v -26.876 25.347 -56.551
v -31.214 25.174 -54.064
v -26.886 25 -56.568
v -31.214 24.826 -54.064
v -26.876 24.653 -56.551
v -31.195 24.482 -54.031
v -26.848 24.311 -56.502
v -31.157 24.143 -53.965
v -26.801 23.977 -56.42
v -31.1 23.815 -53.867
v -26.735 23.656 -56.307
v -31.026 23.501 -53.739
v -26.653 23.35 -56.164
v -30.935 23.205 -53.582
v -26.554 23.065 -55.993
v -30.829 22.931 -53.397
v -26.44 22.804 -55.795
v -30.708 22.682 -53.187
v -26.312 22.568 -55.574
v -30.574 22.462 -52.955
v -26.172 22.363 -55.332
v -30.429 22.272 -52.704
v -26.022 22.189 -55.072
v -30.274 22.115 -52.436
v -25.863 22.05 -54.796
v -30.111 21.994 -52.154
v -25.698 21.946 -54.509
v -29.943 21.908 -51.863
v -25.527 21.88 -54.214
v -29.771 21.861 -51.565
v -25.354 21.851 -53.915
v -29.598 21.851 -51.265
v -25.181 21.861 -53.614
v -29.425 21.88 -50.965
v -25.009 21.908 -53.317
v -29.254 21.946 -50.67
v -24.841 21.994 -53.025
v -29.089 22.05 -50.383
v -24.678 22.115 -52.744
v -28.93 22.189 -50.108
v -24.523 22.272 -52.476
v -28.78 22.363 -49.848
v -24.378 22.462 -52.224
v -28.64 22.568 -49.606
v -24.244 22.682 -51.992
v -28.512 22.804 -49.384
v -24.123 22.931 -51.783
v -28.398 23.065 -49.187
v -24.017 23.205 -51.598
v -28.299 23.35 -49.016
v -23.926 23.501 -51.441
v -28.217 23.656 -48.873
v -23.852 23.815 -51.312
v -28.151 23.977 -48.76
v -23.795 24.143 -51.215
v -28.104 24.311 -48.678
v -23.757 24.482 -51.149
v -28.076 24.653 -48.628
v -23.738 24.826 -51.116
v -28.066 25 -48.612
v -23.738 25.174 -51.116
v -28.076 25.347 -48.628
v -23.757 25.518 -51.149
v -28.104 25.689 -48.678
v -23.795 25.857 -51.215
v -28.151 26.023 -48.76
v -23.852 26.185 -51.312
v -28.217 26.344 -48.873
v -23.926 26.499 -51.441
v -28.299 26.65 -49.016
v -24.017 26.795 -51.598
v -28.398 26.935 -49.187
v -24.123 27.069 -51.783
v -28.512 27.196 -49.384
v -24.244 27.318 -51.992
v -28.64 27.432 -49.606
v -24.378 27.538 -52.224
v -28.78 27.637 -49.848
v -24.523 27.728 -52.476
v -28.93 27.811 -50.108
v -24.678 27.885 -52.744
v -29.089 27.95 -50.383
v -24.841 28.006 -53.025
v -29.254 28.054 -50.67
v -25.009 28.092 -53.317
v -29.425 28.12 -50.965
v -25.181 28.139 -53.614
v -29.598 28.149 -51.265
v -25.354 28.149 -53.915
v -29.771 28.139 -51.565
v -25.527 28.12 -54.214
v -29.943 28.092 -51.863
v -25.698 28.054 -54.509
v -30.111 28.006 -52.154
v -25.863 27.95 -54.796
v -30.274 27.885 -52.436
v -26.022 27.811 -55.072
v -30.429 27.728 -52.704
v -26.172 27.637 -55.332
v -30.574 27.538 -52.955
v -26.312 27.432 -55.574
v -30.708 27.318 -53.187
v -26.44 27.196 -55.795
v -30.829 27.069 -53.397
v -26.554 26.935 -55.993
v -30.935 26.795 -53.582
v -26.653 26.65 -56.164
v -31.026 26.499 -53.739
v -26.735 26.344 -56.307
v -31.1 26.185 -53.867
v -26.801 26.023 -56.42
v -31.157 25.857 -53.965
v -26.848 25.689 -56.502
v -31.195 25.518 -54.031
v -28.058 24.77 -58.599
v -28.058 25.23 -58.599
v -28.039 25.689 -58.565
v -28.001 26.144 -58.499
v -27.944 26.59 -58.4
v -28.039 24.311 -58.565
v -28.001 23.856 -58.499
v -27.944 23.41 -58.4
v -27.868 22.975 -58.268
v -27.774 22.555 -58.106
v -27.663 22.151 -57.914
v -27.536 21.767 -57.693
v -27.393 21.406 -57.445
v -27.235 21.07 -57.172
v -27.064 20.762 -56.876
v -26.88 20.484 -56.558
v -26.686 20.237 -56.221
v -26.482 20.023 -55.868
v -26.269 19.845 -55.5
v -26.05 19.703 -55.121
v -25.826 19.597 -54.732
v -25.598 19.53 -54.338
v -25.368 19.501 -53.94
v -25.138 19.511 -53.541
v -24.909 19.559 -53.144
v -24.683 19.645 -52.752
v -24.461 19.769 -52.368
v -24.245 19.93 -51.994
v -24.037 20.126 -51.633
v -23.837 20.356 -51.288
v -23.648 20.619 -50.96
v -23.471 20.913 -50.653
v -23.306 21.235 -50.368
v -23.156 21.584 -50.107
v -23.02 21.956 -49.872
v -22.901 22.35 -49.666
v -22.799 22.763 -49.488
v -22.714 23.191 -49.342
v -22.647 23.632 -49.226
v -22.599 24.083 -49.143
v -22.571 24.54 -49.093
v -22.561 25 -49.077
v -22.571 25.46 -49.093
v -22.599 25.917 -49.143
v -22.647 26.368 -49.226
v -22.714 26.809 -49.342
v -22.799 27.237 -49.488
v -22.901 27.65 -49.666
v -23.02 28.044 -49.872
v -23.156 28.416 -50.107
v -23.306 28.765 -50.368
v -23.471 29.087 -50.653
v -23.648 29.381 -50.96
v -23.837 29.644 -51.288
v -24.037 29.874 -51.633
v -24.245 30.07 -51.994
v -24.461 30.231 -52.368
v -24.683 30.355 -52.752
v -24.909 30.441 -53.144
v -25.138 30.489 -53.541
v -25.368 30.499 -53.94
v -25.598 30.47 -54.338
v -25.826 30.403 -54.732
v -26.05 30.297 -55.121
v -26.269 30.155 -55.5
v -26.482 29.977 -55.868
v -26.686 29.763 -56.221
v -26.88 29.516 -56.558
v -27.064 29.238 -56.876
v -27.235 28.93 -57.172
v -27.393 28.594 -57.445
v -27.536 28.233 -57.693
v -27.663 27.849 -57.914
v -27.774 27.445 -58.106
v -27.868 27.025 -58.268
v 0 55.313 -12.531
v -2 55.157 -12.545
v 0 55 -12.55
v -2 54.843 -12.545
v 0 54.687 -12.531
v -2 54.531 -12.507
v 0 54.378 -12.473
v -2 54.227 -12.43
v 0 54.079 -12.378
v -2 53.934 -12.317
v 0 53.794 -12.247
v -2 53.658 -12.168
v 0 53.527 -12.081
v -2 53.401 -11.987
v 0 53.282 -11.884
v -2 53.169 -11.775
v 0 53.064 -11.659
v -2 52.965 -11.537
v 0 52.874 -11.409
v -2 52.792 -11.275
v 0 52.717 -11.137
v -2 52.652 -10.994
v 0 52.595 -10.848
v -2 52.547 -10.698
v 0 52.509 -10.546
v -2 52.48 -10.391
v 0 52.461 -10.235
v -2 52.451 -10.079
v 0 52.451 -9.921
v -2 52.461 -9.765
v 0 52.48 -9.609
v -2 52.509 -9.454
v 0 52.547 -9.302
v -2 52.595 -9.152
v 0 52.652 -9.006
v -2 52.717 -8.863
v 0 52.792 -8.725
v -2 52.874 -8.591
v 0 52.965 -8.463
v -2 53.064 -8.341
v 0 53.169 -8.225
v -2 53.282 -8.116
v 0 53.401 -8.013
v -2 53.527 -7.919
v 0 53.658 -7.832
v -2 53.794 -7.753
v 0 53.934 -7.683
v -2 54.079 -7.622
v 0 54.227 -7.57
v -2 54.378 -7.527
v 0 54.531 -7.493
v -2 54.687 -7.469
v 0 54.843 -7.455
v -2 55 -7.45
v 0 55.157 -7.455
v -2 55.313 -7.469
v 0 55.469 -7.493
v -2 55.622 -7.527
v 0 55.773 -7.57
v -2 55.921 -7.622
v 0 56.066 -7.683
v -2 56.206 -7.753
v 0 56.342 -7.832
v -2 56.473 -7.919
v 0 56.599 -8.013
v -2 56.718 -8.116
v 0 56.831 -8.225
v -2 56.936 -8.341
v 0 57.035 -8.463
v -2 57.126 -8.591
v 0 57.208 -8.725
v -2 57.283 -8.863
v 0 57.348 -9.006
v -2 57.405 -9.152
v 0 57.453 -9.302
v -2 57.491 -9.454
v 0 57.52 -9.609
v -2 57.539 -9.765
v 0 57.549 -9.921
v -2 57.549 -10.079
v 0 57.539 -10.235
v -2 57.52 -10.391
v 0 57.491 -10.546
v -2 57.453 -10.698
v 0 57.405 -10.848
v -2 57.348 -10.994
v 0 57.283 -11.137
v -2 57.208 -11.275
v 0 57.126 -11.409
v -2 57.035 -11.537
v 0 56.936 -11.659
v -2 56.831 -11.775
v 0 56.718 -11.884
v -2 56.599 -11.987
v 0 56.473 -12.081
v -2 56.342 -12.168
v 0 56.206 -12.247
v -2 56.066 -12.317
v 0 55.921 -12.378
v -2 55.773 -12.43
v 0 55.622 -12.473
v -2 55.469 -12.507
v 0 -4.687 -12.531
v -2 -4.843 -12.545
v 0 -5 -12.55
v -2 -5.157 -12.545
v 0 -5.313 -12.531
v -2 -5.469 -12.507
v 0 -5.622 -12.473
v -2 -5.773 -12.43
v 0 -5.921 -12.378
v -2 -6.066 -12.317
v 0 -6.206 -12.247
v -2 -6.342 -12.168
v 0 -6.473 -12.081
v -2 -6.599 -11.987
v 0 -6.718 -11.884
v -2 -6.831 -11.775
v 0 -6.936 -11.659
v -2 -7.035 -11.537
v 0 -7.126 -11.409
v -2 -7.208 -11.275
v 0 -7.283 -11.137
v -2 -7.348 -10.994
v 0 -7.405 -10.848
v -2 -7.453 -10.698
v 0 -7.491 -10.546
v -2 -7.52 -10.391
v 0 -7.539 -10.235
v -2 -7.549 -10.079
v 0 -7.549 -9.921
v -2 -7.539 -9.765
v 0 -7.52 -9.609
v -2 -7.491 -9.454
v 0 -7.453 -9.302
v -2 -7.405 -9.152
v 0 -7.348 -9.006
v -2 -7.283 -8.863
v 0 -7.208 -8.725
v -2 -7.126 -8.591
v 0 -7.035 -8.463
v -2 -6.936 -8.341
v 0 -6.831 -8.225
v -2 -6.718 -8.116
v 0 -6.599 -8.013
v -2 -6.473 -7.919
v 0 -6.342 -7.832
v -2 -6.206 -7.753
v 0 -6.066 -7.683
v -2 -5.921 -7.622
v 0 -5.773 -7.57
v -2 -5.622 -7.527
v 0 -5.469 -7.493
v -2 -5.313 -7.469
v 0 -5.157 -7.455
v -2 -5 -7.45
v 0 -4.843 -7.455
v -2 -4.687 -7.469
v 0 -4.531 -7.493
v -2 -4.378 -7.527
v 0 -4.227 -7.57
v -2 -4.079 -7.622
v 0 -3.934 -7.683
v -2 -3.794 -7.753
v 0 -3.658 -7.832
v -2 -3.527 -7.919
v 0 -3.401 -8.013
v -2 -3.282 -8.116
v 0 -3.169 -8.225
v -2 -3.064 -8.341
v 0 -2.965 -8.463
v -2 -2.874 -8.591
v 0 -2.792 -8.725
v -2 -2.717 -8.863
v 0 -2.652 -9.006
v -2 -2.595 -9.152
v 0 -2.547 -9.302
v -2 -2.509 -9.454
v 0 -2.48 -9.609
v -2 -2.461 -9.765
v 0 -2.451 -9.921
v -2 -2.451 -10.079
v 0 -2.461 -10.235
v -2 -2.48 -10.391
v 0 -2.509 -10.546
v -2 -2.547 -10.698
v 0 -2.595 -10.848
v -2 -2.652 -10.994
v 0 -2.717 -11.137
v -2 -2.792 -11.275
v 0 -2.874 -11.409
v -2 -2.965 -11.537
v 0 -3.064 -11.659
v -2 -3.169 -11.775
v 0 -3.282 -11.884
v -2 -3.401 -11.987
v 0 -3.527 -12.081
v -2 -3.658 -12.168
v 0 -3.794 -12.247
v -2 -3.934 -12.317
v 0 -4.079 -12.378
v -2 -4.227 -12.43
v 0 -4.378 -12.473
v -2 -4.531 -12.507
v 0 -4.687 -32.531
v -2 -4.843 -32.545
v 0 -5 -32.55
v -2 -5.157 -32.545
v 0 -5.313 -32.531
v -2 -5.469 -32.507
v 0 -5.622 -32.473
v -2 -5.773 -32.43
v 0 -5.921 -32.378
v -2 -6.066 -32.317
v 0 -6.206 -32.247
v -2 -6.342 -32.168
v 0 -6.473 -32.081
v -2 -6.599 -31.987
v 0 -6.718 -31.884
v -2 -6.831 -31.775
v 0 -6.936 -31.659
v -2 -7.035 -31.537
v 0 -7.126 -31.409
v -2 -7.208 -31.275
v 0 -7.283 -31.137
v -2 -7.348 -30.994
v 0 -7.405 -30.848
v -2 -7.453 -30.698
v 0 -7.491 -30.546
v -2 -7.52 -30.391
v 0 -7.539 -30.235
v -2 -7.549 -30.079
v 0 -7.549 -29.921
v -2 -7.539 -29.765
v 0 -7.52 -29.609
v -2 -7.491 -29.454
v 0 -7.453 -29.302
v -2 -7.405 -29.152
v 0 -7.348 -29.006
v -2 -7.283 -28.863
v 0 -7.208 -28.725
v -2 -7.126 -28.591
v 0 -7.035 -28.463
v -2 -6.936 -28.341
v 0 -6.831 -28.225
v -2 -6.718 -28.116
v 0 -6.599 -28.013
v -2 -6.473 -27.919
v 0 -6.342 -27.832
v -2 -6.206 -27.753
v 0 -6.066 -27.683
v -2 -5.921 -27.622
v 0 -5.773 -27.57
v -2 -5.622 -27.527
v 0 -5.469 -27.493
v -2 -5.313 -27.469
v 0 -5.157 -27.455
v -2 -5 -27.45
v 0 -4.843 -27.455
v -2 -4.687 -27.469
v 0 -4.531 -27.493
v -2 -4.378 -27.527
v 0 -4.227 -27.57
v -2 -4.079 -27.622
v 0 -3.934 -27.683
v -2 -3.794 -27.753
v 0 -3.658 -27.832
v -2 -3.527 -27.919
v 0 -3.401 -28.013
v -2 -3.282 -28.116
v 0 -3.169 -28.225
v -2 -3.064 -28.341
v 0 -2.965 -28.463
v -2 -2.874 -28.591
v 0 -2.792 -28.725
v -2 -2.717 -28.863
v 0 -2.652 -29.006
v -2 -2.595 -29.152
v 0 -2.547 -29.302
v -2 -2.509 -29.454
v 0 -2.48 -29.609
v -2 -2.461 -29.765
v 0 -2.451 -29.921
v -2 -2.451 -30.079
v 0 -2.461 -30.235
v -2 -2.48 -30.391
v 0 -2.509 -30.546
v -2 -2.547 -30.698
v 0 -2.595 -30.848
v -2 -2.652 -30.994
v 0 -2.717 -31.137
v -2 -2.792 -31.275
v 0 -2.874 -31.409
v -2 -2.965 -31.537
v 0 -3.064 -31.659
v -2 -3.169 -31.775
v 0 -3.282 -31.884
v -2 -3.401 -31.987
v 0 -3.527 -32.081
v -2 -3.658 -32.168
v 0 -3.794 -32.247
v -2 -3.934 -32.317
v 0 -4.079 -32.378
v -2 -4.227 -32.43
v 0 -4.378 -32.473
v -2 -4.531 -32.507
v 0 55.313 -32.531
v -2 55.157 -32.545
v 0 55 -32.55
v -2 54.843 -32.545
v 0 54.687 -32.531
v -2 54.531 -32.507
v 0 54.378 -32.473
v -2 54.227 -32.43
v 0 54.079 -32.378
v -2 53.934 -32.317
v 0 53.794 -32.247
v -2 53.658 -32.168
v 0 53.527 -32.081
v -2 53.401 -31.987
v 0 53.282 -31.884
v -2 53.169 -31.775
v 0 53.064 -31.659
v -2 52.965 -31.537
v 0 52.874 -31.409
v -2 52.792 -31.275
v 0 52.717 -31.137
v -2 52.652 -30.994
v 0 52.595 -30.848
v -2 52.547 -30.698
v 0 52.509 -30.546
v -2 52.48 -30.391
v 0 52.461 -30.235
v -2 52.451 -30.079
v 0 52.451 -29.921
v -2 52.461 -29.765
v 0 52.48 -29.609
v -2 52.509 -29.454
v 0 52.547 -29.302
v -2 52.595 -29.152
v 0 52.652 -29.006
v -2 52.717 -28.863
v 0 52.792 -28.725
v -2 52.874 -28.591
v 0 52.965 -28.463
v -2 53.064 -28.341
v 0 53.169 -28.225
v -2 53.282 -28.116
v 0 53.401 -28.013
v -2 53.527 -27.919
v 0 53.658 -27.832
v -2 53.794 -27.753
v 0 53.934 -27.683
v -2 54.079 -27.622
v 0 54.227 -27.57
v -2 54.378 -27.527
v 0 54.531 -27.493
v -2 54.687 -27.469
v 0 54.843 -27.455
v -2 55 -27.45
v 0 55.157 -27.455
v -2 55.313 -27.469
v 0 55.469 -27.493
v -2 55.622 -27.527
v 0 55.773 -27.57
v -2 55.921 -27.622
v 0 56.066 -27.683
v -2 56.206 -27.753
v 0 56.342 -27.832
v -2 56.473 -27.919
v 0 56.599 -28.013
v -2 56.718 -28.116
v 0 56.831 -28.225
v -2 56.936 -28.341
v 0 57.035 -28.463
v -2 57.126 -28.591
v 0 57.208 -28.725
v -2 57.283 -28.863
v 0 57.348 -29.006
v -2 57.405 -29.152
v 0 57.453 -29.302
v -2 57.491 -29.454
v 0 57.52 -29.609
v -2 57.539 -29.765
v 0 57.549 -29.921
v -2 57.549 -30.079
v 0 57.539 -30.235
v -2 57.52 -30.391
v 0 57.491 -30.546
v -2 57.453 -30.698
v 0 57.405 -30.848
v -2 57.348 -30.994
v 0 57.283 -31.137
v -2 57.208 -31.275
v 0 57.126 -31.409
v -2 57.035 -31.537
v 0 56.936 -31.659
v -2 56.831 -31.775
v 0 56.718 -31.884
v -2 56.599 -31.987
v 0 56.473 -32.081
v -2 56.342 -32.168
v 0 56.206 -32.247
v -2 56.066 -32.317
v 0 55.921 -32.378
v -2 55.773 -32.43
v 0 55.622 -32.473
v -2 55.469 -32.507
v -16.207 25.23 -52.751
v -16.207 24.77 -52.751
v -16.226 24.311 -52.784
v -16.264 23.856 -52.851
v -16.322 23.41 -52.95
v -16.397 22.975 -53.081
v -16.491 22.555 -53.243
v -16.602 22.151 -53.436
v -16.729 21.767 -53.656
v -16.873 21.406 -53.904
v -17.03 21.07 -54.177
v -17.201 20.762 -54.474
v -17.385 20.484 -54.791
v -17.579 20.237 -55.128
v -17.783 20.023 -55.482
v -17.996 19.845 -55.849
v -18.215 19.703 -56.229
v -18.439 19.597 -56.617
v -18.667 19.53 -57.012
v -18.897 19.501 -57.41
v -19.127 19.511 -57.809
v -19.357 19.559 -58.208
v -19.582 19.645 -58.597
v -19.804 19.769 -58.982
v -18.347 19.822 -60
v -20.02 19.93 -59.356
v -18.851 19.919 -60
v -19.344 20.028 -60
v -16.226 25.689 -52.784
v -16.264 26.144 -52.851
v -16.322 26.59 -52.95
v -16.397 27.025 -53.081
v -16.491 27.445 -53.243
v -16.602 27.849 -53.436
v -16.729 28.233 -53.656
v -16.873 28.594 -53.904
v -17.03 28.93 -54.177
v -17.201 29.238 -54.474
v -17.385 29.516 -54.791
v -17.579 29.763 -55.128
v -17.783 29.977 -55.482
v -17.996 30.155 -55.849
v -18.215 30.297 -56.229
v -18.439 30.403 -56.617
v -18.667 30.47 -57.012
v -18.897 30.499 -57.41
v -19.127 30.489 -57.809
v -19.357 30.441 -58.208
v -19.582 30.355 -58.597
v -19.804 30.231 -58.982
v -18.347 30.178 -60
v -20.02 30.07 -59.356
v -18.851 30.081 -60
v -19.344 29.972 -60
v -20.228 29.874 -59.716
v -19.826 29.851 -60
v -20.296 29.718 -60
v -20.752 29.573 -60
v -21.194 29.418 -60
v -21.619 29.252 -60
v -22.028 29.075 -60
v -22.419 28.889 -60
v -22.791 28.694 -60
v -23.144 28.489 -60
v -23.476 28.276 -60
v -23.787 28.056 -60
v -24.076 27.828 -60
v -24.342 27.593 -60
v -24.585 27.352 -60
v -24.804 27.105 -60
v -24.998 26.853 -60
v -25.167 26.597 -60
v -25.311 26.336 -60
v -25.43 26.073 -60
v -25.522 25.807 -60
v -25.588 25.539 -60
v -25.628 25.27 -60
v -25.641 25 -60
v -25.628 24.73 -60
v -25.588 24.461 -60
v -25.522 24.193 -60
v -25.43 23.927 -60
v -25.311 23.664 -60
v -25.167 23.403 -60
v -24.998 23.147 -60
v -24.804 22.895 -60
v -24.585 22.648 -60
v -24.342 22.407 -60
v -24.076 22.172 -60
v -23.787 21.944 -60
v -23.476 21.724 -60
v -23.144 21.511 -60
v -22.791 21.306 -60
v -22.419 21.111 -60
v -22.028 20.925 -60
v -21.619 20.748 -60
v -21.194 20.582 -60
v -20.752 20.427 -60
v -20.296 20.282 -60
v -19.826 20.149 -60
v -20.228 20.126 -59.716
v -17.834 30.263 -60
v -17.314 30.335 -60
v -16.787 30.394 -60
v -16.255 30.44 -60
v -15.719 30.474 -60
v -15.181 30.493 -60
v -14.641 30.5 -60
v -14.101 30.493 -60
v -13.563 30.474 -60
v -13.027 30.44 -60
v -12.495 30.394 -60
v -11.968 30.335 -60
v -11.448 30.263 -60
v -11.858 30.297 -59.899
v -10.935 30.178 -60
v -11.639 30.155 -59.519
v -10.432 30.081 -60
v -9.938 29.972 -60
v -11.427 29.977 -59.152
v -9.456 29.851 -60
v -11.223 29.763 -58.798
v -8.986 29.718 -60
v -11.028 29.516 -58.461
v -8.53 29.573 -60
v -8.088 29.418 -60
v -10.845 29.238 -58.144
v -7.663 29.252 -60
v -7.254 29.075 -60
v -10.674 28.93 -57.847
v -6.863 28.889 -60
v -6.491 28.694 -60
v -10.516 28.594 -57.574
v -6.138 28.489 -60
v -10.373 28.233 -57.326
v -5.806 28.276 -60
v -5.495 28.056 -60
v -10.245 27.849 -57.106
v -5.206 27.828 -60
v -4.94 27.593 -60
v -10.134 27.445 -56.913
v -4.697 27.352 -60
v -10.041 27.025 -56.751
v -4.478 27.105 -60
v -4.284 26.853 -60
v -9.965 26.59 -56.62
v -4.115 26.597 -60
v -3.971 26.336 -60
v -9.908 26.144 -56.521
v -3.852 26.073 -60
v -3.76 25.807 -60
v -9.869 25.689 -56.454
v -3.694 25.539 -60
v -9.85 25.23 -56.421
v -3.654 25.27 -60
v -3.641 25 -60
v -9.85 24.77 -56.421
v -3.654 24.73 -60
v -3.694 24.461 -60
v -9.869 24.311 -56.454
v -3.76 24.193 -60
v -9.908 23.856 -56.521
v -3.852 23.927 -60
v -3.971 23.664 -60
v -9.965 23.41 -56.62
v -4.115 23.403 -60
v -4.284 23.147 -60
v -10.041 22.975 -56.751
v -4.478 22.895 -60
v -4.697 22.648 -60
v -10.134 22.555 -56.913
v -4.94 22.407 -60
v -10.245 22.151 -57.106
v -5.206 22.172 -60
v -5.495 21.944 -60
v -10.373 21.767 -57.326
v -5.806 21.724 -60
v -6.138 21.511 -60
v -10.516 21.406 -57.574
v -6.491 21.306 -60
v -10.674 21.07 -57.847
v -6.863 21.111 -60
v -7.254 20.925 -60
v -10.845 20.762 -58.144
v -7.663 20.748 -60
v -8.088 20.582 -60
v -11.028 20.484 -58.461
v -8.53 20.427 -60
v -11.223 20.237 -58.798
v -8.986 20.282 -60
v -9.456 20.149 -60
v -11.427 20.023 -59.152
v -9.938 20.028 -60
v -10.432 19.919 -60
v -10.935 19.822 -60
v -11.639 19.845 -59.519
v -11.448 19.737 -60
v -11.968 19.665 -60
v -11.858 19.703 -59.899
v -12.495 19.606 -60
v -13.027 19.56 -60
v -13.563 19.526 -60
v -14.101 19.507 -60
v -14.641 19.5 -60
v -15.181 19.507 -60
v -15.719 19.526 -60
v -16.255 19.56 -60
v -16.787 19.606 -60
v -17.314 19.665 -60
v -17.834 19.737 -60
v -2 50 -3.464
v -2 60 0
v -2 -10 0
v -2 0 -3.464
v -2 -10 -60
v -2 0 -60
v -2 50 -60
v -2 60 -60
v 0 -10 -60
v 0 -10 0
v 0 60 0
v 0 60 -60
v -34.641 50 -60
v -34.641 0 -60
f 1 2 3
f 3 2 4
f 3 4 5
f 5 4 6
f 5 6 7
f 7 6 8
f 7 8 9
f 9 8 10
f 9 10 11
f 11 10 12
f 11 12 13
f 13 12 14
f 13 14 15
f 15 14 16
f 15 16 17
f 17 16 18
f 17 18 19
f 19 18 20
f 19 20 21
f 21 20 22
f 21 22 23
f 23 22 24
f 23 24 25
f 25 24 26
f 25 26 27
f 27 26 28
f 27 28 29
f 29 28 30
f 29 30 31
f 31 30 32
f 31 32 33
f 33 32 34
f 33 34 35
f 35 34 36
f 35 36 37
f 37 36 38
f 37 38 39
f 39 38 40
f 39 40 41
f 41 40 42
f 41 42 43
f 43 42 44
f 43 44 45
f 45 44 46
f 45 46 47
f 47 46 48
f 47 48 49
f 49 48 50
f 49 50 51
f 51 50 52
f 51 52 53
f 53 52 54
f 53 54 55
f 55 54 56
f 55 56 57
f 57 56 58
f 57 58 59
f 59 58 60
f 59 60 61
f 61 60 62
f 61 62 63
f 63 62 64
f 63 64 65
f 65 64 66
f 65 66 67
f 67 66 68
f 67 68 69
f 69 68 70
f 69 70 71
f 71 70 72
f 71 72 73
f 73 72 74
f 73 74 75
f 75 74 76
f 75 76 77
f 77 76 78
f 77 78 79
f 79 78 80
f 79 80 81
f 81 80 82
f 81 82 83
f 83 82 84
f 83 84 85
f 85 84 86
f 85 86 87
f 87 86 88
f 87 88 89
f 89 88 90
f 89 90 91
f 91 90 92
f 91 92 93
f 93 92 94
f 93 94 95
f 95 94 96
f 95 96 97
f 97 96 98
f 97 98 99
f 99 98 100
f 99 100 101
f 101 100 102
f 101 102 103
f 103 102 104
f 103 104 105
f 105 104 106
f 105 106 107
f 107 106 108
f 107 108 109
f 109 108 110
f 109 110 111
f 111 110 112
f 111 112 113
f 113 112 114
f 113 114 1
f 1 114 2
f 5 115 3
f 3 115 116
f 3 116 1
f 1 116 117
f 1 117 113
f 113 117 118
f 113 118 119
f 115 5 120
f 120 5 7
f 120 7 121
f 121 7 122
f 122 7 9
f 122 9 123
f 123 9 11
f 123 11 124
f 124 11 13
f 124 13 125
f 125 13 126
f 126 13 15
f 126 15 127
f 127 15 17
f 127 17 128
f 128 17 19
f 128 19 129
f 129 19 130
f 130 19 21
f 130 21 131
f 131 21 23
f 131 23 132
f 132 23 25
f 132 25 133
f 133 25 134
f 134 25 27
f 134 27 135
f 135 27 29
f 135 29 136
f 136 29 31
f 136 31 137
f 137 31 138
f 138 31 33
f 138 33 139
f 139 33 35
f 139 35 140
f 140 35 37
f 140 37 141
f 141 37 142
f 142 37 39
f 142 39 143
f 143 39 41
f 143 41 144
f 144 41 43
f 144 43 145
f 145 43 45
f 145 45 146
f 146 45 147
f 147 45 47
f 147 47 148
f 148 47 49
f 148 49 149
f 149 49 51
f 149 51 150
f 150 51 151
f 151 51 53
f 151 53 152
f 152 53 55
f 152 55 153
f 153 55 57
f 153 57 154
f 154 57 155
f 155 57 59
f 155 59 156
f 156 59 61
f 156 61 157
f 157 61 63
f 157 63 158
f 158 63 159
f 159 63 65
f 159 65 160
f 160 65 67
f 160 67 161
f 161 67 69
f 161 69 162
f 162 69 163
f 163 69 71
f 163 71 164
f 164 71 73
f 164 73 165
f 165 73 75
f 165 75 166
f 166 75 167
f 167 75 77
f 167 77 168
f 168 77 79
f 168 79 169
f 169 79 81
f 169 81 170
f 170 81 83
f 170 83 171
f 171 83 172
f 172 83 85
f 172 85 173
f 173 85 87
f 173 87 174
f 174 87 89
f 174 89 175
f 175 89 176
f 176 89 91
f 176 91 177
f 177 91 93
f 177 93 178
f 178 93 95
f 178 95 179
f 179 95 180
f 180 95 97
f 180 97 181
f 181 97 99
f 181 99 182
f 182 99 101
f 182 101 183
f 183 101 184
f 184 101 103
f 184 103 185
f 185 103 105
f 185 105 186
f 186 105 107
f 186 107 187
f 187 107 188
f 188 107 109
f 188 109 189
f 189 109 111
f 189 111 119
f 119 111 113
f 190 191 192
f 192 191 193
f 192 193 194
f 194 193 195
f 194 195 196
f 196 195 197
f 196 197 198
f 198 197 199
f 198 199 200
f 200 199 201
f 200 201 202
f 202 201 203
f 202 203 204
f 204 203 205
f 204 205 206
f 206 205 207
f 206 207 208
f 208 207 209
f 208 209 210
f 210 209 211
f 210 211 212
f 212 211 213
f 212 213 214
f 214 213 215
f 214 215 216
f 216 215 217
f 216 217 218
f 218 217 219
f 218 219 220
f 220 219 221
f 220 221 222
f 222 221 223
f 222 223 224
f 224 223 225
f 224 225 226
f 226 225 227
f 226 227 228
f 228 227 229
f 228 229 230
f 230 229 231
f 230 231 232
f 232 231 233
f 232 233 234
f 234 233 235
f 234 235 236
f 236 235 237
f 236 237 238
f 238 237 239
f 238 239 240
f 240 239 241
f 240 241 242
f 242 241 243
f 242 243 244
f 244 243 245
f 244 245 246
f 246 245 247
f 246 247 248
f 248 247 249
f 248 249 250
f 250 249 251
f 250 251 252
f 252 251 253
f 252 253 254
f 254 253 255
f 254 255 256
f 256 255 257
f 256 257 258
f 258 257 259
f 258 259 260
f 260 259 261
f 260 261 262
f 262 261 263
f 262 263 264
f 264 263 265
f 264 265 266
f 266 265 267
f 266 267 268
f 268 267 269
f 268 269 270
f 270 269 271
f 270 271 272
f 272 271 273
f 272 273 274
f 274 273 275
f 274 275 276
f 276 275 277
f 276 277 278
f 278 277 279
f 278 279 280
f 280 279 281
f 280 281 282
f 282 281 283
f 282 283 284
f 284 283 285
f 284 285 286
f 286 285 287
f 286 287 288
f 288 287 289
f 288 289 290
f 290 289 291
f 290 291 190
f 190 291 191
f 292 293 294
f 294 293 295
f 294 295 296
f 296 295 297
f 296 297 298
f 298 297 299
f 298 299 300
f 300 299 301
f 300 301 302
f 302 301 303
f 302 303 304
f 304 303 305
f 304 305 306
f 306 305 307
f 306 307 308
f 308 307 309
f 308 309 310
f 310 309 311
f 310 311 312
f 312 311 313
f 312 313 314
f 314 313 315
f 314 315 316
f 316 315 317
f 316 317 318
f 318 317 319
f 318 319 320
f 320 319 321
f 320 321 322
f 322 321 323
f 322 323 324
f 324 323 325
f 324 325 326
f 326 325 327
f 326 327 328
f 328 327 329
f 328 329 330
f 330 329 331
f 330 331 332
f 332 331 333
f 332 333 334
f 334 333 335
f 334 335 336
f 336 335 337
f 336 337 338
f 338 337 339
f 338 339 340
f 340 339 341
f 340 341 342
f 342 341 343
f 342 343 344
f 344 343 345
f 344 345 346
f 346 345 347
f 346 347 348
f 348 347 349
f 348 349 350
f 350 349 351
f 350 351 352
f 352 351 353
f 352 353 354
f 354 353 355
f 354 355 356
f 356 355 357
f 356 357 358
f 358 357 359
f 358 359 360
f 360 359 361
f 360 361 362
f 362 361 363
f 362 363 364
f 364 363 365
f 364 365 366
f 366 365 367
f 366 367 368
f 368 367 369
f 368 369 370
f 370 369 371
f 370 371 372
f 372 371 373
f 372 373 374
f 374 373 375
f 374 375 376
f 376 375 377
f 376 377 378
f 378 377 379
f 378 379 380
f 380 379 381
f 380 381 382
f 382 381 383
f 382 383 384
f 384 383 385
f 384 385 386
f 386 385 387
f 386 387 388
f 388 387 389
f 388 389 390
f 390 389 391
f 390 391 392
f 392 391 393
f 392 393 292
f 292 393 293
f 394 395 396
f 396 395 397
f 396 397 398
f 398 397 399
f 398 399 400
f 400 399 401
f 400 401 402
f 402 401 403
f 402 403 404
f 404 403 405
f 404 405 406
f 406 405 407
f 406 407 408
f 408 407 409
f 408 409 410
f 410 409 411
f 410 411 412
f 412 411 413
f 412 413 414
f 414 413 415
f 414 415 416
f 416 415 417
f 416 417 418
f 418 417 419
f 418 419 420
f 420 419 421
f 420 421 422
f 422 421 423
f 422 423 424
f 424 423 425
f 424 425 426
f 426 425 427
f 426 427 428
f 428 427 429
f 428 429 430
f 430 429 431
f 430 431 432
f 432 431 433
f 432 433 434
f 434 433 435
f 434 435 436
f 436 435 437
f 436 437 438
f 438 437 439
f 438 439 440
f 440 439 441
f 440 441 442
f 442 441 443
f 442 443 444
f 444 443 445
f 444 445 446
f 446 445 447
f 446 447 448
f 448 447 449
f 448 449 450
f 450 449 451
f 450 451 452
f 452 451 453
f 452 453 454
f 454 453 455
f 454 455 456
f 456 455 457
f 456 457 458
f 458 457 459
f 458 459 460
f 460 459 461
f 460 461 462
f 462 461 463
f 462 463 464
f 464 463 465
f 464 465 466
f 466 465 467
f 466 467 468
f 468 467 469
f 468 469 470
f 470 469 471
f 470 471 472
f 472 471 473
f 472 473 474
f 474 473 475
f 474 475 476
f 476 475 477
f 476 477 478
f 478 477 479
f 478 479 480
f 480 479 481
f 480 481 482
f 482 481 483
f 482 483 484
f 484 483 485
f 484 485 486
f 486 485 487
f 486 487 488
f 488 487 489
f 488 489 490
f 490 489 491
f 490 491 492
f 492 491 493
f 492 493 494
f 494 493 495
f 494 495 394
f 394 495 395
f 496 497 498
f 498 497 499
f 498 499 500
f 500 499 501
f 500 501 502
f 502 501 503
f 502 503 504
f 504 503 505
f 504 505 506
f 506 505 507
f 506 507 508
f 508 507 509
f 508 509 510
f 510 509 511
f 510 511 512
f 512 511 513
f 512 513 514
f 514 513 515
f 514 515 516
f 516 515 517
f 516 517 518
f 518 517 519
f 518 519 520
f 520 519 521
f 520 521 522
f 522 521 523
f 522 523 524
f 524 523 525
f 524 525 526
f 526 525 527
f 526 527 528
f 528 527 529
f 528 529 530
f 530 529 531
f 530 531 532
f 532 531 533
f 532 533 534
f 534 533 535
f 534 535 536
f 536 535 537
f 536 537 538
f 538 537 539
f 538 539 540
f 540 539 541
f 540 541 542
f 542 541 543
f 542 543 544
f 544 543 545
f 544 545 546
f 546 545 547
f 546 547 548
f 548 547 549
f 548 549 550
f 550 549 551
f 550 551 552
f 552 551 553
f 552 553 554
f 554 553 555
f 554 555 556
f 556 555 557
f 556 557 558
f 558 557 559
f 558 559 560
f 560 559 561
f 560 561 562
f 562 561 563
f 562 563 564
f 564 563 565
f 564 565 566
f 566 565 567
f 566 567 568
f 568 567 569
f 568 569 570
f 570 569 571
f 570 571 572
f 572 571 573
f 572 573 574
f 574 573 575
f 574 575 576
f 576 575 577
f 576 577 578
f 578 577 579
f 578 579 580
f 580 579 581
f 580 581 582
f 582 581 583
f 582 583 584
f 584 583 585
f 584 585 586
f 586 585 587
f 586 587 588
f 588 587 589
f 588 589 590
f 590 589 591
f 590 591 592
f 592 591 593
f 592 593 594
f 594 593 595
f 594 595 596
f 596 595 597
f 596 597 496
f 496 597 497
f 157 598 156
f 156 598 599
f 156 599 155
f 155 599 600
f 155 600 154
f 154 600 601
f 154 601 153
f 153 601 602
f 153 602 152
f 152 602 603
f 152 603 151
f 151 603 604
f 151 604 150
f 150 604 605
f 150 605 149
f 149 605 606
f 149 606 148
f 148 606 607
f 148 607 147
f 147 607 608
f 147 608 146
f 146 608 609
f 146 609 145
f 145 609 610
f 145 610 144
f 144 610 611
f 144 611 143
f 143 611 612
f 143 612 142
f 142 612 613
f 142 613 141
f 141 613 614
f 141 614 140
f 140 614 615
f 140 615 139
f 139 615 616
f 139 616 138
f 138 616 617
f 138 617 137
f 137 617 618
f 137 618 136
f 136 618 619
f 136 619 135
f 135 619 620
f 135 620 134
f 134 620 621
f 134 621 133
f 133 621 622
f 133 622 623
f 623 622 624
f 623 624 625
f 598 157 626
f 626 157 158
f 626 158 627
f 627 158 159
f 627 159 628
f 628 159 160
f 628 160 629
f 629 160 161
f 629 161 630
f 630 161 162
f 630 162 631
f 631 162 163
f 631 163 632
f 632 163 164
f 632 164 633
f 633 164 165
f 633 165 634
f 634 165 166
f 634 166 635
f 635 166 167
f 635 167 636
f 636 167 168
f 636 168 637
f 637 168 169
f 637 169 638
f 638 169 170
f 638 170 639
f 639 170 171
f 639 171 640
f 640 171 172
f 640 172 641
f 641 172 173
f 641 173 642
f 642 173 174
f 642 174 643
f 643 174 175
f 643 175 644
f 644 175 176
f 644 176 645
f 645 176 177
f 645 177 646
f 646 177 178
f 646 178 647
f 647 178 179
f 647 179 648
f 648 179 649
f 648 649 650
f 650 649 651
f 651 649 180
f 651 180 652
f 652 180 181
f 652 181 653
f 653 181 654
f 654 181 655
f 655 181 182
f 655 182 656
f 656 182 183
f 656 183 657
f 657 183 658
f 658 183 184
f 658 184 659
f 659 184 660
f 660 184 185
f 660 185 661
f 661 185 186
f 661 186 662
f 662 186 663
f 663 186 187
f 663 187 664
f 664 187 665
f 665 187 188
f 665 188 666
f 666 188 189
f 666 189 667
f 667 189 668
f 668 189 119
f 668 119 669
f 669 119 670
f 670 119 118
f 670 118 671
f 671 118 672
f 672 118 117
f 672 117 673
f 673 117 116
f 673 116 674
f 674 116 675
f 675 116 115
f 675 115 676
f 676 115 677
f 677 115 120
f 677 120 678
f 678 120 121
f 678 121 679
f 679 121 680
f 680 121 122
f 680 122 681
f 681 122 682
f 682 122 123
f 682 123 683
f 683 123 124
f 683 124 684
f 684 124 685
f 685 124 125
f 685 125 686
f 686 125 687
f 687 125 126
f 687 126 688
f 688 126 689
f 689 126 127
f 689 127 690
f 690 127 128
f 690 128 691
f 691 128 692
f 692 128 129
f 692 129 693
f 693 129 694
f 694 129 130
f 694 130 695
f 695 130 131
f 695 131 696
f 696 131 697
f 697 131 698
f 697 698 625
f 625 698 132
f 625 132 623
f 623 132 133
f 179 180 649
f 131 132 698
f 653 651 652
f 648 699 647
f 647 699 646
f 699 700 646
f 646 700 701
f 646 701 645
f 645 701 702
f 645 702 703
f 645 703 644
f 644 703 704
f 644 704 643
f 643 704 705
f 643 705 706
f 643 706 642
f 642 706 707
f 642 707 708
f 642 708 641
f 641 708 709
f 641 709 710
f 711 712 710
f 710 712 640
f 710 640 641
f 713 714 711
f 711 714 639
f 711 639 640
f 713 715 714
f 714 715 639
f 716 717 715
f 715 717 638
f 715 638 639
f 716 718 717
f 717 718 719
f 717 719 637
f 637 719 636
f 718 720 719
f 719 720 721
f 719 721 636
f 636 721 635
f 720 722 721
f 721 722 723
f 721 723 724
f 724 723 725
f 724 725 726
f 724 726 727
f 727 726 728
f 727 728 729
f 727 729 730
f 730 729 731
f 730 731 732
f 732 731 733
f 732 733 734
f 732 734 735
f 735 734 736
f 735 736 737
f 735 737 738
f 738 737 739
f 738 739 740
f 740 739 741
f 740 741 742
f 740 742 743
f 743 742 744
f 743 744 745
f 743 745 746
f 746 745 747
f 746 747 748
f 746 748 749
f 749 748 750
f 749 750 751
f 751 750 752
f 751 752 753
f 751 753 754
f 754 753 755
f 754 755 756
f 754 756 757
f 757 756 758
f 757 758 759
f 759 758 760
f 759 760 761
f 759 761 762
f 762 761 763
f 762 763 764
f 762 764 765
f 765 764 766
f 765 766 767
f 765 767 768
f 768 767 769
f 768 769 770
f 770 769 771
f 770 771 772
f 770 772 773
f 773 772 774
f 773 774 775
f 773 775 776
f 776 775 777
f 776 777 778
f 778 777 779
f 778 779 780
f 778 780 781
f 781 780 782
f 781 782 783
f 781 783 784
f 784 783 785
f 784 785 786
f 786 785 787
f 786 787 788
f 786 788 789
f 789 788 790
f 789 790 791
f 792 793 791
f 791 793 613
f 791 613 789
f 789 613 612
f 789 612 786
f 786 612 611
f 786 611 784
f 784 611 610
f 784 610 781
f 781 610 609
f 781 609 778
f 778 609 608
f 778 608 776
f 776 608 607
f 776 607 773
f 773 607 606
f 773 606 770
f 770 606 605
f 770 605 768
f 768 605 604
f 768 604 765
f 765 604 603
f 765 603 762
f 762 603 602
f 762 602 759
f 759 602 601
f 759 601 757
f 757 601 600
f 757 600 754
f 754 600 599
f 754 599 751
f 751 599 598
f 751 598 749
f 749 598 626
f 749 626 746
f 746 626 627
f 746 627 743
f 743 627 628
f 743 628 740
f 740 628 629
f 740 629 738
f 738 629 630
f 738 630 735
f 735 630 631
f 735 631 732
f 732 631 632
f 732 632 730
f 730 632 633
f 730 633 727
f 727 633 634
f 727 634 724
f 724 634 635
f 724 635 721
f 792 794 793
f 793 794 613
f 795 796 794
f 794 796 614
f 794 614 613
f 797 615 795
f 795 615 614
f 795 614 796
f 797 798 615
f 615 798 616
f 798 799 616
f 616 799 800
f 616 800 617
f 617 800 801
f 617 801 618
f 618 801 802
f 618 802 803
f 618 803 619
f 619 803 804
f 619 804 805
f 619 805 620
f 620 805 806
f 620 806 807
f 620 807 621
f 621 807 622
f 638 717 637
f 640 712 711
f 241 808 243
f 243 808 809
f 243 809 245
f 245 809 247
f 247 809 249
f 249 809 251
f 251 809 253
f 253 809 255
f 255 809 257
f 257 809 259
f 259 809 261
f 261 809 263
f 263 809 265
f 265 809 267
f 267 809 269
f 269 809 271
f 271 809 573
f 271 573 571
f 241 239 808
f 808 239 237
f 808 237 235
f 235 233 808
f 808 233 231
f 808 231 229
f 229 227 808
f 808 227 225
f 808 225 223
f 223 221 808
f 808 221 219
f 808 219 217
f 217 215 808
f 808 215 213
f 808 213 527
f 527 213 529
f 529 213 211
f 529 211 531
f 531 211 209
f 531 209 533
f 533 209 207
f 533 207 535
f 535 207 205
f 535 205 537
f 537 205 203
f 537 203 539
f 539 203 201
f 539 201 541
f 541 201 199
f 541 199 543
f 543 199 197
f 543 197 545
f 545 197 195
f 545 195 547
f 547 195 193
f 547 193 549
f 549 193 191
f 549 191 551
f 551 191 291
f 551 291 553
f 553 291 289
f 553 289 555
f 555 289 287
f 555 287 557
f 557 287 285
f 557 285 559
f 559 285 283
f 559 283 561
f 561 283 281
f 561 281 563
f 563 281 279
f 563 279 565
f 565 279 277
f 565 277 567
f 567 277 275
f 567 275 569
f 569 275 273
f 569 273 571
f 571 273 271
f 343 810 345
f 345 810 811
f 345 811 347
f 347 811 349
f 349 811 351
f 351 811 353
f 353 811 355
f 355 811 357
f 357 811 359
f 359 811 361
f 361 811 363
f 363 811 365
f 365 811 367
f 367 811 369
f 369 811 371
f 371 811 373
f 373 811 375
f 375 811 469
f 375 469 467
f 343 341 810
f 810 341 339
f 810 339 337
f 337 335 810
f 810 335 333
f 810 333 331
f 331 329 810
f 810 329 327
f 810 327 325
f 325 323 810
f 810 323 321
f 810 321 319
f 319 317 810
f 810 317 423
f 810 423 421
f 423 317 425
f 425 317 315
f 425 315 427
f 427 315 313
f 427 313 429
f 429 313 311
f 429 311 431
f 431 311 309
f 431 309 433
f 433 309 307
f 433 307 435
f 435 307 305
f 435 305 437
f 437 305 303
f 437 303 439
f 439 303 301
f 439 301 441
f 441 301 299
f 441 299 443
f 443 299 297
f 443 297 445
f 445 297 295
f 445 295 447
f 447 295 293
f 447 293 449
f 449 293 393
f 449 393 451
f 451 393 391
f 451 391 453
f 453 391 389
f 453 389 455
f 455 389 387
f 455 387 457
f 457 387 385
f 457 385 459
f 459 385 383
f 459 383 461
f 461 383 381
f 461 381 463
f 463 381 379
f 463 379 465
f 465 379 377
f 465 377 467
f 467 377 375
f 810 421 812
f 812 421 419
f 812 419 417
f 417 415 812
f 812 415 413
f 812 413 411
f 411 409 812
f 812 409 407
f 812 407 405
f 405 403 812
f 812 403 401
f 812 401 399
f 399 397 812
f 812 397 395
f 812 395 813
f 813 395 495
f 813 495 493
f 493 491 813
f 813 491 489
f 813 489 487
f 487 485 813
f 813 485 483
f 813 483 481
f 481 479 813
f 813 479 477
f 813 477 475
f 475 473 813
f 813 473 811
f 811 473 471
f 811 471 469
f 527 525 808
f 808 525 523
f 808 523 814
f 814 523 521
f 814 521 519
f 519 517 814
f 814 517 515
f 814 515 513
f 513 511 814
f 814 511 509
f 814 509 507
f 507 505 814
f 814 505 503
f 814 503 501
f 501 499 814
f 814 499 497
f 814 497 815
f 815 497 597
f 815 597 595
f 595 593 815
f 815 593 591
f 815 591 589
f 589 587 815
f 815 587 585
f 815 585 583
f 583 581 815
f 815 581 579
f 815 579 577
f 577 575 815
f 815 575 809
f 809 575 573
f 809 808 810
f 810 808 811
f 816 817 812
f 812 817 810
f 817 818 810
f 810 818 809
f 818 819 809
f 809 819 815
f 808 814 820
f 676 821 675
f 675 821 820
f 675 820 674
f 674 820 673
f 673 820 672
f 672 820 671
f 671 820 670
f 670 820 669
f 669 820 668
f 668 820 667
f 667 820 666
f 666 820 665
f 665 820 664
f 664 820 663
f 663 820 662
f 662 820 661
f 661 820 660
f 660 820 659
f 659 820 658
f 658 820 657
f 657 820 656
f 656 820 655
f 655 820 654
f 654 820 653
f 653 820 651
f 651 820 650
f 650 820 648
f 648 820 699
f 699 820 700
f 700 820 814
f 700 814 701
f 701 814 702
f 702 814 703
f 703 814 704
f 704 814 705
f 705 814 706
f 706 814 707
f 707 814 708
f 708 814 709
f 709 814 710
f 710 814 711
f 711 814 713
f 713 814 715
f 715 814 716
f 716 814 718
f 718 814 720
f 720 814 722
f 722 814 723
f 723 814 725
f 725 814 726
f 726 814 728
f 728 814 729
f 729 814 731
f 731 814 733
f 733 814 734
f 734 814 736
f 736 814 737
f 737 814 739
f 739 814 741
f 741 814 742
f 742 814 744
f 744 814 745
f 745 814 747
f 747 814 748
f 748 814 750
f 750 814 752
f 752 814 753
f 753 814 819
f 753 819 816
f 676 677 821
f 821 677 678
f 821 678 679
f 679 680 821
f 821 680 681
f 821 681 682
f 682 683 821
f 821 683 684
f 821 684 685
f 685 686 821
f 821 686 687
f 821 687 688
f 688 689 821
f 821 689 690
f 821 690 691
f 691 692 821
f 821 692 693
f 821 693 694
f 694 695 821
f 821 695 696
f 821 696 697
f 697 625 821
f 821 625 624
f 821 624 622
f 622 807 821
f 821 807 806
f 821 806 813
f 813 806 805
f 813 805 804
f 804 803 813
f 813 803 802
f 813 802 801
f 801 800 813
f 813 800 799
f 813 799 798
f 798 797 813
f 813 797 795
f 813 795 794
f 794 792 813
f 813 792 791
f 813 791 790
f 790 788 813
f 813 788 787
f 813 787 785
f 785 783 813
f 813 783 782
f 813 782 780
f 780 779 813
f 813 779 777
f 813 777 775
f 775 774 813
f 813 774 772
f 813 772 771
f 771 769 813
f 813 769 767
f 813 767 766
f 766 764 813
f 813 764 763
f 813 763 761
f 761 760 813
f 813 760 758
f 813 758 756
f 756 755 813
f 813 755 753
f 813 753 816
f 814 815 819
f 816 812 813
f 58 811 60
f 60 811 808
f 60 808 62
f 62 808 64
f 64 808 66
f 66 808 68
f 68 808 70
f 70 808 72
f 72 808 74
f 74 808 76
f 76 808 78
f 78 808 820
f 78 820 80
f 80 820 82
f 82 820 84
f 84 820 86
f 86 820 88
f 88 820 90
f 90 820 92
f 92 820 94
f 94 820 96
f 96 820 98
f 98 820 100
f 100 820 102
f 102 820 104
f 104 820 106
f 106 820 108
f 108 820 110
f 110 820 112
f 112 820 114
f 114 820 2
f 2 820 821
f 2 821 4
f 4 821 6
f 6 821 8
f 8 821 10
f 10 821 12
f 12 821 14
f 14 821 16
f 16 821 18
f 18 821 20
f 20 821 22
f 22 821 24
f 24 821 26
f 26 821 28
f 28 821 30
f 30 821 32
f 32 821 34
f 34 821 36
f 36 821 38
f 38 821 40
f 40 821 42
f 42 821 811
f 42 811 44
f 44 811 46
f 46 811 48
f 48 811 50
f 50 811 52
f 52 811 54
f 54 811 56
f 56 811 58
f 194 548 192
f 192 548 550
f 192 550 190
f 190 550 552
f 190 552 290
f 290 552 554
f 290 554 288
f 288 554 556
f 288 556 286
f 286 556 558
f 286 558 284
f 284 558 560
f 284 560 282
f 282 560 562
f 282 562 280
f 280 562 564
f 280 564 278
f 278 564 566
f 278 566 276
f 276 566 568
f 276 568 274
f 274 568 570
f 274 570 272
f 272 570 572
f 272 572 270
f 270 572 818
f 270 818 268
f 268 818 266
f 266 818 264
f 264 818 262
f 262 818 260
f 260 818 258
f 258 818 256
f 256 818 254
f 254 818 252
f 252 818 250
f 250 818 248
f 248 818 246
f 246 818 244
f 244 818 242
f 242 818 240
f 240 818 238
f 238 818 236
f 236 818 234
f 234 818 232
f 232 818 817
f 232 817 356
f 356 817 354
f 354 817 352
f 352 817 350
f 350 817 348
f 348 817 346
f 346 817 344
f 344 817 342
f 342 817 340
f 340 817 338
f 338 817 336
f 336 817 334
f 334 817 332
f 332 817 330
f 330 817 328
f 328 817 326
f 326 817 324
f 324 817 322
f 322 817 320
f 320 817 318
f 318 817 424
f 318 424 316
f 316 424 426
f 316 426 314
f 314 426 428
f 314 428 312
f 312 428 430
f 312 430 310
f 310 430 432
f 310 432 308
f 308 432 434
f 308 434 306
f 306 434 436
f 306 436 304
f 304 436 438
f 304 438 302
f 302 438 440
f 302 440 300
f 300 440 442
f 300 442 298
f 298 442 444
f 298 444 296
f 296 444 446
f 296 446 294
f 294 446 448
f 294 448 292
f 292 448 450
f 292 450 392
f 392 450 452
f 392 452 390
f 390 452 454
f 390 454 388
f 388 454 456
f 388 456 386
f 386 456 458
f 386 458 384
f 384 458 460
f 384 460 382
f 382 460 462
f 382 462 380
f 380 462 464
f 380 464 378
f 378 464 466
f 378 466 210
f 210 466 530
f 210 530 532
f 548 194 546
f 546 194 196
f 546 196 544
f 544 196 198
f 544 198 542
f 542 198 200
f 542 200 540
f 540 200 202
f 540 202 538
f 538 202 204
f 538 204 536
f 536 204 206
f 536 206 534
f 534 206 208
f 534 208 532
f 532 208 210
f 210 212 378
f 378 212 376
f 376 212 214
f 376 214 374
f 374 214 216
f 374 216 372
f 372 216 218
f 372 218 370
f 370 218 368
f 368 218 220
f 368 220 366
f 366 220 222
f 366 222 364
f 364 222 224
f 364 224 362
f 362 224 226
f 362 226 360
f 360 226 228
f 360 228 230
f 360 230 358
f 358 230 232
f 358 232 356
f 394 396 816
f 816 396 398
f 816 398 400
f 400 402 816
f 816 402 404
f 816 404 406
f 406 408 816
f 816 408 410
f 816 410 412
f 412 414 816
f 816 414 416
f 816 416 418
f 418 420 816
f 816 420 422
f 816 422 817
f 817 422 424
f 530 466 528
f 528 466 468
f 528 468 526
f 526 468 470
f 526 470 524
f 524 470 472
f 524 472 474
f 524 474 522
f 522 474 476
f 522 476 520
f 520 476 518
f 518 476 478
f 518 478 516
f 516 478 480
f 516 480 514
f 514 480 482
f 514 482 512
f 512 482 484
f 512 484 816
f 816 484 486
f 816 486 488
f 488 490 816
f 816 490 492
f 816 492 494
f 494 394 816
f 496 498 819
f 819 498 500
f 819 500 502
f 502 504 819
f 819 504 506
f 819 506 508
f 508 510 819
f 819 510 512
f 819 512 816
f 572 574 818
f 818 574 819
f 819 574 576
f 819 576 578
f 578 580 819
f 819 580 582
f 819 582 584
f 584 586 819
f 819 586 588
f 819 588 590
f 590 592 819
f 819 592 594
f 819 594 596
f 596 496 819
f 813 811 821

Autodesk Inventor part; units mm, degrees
ref_plane "YZ Plane" through (0, 0, 0) normal (1, 0, 0) x (0, 1, 0)
ref_plane "XZ Plane" through (0, 0, 0) normal (0, 1, 0) x (-1, 0, 0)
ref_plane "XY Plane" through (0, 0, 0) normal (0, 0, 1) x (1, 0, 0)
sketch "スケッチ3" plane through (0, 0, 0) normal (0, 1, 0) x (-1, 0, 0)
  line L0 (0, 0) -> (0, -60)
  line L1 (0, 0) -> (34.641, -60)
  line L2 (0, 0) -> (69.282, 0) construction
  line L3 (34.641, -60) -> (0, -60)
  dimension "d21" = 60
  dimension "d23" = 60
extrude "押し出し2" add sketch "スケッチ3" along normal blind 50
sketch "スケッチ4" plane through (0, 50, 0) normal (0, 1, 0) x (1, 0, 0)
  line L0 (0, 0) -> (0, 60) projected
  line L1 (0, 0) -> (0, 60)
  line L2 (0, 60) -> (-2, 60)
  line L3 (-2, 60) -> (-2, 0)
  line L4 (-2, 0) -> (0, 0)
  dimension "d26" = 2
extrude "押し出し3" add sketch "スケッチ4" along normal blind 10 and the other way blind 60
sketch "スケッチ5" plane through (-34.641, 0, -60) normal (-0.8660254, 0, 0.5) x (0.5, 0, 0.8660254)
  line L0 (65.282, 0) -> (65.282, 50) projected
  line L1 (0, 0) -> (65.282, 0) projected
  line L2 (0, 0) -> (0, 50) projected
  point P0 (69.282, 0)
  point P1 (10, 25)
  dimension "d32" = 25
  dimension "d68" = 10
hole "穴2" at (-29.641, 25, -51.3397) direction (0.8660254, 0, -0.5) diameter 11 end through all
sketch "スケッチ6" plane through (-34.641, 0, -60) normal (-0.8660254, 0, 0.5) x (0.5, 0, 0.8660254)
  point P0 (69.282, 0)
sketch "スケッチ12" plane through (-2, 50, -60) normal (-1, 0, 0) x (0, 0, 1)
  line L0 (60, -60) -> (60, 10) projected
  line L1 (60, -60) -> (0, -60) projected
  point P0 (60, -50)
  point P1 (50, -55)
  point P2 (30, -55)
  point P3 (50, 5)
  point P4 (30, 5)
  dimension "d51" = 10
  dimension "d52" = 5
  dimension "d55" = 20
  dimension "d58" = 60
hole "穴4" at (-2, -5, -10) at (-2, -5, -30) at (-2, 55, -10) at (-2, 55, -30) direction (1, 0, 0) diameter 5.1 end through all
sketch "スケッチ13" plane through (-34.641, 0, -60) normal (-0.8660254, 0, 0.5) x (0.5, 0, 0.8660254)
  circle A0 centre (10, 25) radius 5.5
  line L0 (0, 0) -> (0, 50) projected
  line L1 (0, 0) -> (65.282, 0) projected
  point P0 (69.282, 0)
  dimension "d69" = 11
  dimension "d70" = 10
  dimension "d71" = 25
extrude "押し出し5" add sketch "スケッチ13" against normal blind 5
sketch "スケッチ14" plane through (-34.641, 0, -60) normal (-0.8660254, 0, 0.5) x (0.5, 0, 0.8660254)
  circle A0 centre (10, 25) radius 5.5 projected
  point P0 (69.282, 0)
hole "穴5" at (-29.641, 25, -51.3397) direction (0.8660254, 0, -0.5) diameter 6.3 end through all
properties part number "box3_camera_mount"
